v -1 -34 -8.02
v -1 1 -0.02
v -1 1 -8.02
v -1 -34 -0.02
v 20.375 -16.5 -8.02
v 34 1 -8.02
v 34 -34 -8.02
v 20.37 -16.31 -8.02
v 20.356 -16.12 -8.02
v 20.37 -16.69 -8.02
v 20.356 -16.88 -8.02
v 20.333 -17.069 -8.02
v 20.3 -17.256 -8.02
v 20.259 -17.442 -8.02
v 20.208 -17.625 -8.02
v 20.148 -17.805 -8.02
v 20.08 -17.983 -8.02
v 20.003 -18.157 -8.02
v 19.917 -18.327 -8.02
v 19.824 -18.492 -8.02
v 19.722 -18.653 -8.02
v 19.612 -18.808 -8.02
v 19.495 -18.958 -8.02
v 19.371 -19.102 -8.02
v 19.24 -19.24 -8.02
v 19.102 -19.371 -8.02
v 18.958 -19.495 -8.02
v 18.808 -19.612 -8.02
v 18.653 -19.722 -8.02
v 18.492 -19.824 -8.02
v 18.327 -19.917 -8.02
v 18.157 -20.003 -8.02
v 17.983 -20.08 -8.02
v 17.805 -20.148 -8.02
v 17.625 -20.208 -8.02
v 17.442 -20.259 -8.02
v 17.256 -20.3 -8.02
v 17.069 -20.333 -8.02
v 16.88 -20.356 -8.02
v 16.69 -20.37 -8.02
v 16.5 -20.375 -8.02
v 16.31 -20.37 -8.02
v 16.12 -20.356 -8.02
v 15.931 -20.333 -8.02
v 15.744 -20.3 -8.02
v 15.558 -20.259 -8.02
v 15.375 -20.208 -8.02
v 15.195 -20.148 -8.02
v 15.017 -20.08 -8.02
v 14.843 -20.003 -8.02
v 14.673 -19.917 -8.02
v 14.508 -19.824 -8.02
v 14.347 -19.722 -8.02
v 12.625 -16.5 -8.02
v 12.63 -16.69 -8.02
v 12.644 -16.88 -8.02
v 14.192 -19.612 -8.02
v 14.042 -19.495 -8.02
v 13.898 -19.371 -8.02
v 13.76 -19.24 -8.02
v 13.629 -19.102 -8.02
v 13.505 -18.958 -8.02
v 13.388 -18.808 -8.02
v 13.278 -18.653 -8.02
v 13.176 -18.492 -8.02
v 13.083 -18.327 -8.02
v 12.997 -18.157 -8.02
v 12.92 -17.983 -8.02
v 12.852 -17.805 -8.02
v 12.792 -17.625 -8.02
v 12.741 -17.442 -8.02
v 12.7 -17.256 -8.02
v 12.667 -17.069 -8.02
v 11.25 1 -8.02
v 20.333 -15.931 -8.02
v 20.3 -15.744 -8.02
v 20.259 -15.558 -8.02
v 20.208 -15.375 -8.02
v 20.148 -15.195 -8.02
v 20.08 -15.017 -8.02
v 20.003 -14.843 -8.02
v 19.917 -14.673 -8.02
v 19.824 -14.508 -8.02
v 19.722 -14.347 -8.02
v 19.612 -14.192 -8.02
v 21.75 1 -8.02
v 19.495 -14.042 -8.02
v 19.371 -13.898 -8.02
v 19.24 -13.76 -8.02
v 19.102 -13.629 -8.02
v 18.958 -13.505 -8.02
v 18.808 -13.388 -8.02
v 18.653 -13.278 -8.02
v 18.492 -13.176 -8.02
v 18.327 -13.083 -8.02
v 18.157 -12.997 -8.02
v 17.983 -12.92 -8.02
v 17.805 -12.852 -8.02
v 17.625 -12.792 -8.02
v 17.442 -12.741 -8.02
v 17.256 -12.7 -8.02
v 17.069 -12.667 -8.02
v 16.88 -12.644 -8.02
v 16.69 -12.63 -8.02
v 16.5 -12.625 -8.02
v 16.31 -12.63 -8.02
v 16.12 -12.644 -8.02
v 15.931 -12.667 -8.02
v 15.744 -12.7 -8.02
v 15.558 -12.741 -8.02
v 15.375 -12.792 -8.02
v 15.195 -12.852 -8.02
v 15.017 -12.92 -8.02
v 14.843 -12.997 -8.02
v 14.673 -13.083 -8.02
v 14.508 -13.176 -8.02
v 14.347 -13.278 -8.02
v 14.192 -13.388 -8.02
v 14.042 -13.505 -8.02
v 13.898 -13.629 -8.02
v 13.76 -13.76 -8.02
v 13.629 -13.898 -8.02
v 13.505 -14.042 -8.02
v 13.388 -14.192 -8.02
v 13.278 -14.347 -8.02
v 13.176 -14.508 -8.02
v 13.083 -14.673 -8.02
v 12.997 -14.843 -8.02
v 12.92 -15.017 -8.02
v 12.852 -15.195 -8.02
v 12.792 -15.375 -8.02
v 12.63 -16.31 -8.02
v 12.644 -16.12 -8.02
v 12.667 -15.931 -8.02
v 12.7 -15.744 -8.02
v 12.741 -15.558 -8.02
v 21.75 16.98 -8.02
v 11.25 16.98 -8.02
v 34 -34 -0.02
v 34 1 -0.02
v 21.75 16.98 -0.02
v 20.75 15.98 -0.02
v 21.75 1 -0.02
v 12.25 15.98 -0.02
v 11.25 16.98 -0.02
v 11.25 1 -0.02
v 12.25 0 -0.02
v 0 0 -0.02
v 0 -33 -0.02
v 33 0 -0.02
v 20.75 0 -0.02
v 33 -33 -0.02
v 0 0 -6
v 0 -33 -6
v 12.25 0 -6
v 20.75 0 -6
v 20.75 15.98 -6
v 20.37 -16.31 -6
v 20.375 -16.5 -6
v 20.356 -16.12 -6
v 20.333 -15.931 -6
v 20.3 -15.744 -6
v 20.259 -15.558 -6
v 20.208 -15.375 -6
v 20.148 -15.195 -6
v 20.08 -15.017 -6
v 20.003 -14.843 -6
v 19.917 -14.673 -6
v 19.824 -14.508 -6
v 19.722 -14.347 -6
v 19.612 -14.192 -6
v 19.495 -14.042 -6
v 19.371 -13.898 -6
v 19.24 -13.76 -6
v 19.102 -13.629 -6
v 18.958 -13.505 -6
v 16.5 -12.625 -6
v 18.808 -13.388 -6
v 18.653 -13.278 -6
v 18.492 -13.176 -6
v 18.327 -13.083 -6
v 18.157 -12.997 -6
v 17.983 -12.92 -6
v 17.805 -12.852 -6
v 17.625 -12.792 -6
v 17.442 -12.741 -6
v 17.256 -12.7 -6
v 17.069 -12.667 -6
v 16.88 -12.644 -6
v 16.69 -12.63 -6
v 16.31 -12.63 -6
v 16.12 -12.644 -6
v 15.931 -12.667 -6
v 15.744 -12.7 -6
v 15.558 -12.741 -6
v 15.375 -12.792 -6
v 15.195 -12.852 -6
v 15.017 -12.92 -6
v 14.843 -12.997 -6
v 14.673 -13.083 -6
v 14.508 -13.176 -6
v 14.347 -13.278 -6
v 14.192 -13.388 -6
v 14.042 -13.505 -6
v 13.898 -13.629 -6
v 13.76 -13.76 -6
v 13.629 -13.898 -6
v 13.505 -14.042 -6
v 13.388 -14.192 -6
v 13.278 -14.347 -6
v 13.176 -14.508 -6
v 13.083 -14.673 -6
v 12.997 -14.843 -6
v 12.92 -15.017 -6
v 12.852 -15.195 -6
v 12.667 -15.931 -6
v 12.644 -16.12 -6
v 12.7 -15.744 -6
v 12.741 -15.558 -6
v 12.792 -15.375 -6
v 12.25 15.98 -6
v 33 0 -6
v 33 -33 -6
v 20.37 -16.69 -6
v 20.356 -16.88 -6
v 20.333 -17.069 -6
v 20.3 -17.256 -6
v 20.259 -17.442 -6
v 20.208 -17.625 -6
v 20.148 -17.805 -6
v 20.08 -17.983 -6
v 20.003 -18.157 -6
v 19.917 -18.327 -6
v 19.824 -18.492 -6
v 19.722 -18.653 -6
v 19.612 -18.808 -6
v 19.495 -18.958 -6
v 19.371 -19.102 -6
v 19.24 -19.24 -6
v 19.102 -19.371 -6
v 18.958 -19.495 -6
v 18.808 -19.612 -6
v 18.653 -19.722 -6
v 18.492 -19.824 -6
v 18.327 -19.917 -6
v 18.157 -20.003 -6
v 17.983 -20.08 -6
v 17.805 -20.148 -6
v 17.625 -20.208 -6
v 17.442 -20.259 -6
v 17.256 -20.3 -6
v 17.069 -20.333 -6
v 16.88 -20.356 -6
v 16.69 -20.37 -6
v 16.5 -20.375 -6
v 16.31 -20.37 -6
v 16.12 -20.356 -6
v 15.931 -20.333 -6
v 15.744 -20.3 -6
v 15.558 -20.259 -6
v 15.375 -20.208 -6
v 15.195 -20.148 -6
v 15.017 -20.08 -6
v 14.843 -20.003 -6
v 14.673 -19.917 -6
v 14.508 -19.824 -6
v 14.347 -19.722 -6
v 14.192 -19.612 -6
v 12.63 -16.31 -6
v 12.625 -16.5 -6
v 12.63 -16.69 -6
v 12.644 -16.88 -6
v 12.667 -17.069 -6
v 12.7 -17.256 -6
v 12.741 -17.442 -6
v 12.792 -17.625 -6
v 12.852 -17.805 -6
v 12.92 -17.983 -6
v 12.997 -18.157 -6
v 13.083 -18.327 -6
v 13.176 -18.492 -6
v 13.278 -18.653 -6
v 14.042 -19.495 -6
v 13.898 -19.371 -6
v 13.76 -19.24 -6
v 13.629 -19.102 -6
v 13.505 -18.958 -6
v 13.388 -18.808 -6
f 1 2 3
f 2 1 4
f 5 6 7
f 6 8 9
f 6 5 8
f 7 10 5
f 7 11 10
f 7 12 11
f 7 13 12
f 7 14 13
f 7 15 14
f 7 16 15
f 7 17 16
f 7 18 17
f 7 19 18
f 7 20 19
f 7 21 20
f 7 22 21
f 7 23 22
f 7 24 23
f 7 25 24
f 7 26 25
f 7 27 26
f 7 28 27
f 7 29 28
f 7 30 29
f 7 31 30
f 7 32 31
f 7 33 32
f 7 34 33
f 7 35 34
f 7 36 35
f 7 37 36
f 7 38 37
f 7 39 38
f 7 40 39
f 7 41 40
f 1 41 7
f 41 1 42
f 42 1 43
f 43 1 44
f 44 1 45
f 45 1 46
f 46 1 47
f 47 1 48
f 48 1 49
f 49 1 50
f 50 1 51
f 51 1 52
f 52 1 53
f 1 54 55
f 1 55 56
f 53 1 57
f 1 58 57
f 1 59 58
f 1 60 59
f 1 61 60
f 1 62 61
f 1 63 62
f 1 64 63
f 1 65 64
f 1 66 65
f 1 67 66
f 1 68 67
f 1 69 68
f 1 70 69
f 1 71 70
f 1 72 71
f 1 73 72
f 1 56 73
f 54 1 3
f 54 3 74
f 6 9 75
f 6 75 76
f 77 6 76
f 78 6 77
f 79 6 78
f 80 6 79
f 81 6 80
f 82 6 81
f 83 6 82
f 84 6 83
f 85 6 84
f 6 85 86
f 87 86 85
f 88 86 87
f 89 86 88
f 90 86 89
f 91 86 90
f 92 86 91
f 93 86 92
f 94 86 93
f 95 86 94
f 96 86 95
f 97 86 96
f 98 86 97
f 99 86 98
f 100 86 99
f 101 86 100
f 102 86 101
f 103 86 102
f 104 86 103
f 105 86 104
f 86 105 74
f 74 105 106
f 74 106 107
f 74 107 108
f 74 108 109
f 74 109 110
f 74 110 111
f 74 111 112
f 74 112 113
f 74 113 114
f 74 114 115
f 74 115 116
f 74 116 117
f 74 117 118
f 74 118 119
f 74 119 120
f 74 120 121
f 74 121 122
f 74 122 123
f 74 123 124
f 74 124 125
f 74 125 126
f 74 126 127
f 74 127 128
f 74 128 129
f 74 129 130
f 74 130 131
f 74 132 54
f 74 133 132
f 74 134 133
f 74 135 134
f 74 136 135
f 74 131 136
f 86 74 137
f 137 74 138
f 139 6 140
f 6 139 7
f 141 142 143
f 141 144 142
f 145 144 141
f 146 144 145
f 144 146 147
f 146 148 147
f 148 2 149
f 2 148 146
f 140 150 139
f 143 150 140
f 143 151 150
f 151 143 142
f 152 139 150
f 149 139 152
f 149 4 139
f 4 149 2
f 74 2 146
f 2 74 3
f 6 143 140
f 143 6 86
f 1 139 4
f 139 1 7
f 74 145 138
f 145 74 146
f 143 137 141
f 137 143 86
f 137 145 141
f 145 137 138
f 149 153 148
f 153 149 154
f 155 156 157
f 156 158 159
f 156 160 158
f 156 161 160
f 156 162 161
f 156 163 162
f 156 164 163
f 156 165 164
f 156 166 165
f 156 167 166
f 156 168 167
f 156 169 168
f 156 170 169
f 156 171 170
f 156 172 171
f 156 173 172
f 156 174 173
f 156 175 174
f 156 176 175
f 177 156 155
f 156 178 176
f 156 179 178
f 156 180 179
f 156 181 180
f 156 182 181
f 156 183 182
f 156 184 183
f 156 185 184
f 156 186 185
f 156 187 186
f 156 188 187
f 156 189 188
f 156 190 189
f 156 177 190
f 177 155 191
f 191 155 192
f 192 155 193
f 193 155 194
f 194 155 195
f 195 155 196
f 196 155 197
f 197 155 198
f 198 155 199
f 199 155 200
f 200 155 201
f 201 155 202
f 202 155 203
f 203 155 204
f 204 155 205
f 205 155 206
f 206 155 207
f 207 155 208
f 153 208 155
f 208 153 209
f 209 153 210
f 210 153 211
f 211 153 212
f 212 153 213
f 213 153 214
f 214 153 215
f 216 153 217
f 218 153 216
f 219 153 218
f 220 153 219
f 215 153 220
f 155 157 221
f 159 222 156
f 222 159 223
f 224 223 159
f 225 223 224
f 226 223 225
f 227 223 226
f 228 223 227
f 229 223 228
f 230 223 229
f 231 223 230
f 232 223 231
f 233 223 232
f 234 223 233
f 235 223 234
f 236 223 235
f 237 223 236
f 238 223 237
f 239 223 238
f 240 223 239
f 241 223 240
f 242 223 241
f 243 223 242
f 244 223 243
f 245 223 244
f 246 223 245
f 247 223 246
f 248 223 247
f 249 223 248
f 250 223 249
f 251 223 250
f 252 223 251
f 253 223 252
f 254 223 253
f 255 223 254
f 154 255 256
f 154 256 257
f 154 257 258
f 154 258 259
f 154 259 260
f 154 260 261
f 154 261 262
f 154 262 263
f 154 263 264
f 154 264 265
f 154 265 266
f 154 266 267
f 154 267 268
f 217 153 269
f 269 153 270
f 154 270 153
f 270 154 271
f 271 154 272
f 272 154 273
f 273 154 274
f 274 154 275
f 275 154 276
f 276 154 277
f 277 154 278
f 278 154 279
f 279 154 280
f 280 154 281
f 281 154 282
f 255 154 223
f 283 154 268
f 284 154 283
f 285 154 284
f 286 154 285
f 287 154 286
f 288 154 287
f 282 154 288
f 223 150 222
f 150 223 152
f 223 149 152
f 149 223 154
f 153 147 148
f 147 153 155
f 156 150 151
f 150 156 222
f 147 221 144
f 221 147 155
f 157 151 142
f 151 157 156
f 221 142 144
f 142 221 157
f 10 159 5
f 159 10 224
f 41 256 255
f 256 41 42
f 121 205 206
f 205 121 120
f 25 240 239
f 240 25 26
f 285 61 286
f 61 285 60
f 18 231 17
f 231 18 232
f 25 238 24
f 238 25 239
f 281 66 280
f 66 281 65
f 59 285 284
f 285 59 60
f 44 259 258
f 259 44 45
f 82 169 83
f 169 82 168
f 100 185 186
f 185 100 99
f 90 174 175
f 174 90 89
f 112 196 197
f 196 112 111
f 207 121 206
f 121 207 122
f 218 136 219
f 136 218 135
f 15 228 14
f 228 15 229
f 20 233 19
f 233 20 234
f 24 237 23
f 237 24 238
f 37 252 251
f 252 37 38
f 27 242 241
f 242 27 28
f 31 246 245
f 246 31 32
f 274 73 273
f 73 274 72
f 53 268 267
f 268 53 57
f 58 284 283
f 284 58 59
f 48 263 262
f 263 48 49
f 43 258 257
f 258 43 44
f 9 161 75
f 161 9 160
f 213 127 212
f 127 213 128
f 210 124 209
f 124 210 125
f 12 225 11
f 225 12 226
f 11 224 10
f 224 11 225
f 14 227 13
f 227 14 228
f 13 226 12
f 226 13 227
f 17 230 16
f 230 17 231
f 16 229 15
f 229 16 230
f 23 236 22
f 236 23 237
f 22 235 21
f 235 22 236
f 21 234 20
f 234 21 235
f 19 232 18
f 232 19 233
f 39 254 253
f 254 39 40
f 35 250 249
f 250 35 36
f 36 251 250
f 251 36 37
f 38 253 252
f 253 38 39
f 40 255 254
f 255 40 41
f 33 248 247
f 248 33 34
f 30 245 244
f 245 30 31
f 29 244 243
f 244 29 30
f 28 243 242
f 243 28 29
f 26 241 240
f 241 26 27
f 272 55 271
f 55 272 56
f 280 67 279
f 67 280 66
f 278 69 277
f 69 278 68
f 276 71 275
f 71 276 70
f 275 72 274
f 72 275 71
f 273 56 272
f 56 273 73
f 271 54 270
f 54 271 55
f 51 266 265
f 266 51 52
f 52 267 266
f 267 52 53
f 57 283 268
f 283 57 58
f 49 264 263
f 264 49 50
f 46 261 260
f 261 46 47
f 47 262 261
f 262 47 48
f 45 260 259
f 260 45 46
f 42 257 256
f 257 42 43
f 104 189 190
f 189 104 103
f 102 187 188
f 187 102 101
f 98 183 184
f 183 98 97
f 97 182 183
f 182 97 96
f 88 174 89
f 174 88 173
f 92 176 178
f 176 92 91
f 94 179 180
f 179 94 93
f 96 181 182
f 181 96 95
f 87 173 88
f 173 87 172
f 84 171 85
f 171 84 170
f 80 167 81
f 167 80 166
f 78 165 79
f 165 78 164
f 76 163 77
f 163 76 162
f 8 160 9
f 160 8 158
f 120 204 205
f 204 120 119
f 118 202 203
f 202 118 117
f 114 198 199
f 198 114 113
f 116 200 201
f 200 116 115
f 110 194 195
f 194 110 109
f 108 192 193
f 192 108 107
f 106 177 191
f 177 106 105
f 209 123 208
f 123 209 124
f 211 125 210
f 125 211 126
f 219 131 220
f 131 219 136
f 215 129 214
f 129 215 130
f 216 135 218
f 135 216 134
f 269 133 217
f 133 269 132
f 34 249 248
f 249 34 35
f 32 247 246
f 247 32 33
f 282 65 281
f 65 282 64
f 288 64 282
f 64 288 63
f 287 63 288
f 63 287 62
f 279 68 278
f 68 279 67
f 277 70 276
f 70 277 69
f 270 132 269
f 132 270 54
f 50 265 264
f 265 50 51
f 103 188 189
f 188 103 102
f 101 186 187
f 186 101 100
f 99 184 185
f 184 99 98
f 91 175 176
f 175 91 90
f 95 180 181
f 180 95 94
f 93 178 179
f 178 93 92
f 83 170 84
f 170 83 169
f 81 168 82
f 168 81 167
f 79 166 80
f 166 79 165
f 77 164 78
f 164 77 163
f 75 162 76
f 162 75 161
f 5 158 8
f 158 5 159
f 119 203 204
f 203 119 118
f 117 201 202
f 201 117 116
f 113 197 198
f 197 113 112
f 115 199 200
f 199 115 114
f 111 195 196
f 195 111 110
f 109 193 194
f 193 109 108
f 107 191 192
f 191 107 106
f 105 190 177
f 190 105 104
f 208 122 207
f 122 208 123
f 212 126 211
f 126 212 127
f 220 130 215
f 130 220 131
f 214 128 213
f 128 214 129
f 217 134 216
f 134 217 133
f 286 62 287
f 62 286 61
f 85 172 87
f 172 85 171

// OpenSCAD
// file: layouts/l6-playa.scad
POSITIONS = [
  [[121.59, 347.196, 80],  [25.2851, 46.366, 65.558]],
  [[95.181, 89.99, 329.994],   [69.35841, 89.4529, 85.5301]],
  [[250.596, 117.019, 42.5107], [94.7403, 57.5094, 51.0992]]
];
INSERT_HEIGHT = 20;
INSERT_MARGIN = 7;
CAVITY_SCALE = 0.70;
CUBE_SIZE = 110;
FLOOR_SIZE = 55;
// file: constants.scad
include <layouts/l6-playa.scad>

INCH = 25.4;
CEIL_CLEARANCE = 600;
NUM_PHONES = 3;
DRAW_RANDOM = false;


PANE_WIDTH = 10 * INCH;
PANE_HEIGHT = 8 * INCH;
PANE_THICKNESS = 2;

FRAME_PADDING = INCH / 4;

FRAME_WIDTH = PANE_WIDTH + 2 * FRAME_PADDING;
FRAME_HEIGHT = PANE_HEIGHT + 2 * FRAME_PADDING;
FRAME_THICKNESS = INCH / 4;


PHONE_HEIGHT = 147.8;
PHONE_WIDTH = 71.9;
PHONE_DEPTH = 9.1;
PHONE_SCREEN_TOP = 19; //wrt case top
PHONE_SCREEN_HEIGHT = 110;
PHONE_SCREEN_WIDTH = 68;
PHONE_LENS_DIA = 11.85;
PHONE_LENS_OFFSET_LEFT = 3;
PHONE_LENS_OFFSET_TOP = 3.65;
PHONE_LENS_FIELD_OF_VIEW = 81;
PHONE_POWER_BUTTON_TOP = 52;

CASE_THICKNESS = 1.5;
WALL_THICKNESS = 3;
CASE_HEIGHT = PHONE_HEIGHT + 2 * WALL_THICKNESS;
CASE_WIDTH = PHONE_WIDTH + 2 * WALL_THICKNESS;
CASE_DEPTH = PHONE_DEPTH + 2 * CASE_THICKNESS;

// new iteration using baby USB cams
BOARD_WIDTH = 33;
BOARD_HEIGHT = 33;
BOARD_DEPTH = 6;
BOARD_LENS_DIA = 7.75;

BOARD_HOLDER_MARGIN = 2; //temp to address poor fit. ===2

USB_MICROB_WIDTH = 8.5;
USB_MICROB_LENGTH = 16;
USB_CHANNEL_WIDTH = 8.5;
USB_CHANNEL_LENGTH = 20;
USB_CHANNEL_DEPTH = 14;

RASPI_WIDTH = 50; // includes approximate USB clearance
RASPI_LENGTH = 70;
RASPI_HEIGHT = 30;


CASE_ANCHOR_OFFSET = 14;
CASE_ANCHOR_POINTS = [
  [0, 0, 0],
  [0, BOARD_HEIGHT, 0],
  [BOARD_WIDTH, BOARD_HEIGHT, 0],
  [BOARD_WIDTH, 0, 0]
];

PANE_ANCHOR_OFFSET = 0;
PANE_ANCHOR_POINTS = [
  [0, PANE_ANCHOR_OFFSET, 0],
  [0, PANE_HEIGHT - PANE_ANCHOR_OFFSET, 0],
  [PANE_WIDTH, PANE_HEIGHT - PANE_ANCHOR_OFFSET, 0],
  [PANE_WIDTH, PANE_ANCHOR_OFFSET, 0]
];

HOLDER_WIDTH = 100;
HOLDER_HEIGHT = 20;
HOLDER_DEPTH = 30;
HOLDER_FOOT = 10;


d = 0.01;
d2 = 2 * d;
wiggle = 1;
// main file
include <constants.scad>
$fn = 128;

module holder(margin = BOARD_HOLDER_MARGIN, depth = BOARD_DEPTH) {
  w = BOARD_WIDTH + margin;
  h = BOARD_HEIGHT + margin;
  d = depth + margin;
  translate([-margin/2, -margin/2, d2 - depth])
    union() {
      cube([w, h, d]);
    translate([BOARD_WIDTH/2 - USB_MICROB_WIDTH/2, -USB_MICROB_LENGTH + d2, 0])
      cube([USB_MICROB_WIDTH + margin, USB_MICROB_LENGTH + margin, depth + margin]);
  }
}

module slot(id = -1, cutout_depth = 70) {
  translate([0, 0, -cutout_depth])
  union() {
    cube([BOARD_WIDTH, BOARD_HEIGHT, BOARD_DEPTH + cutout_depth]);
    //room for usb connection
    translate([BOARD_WIDTH/2 - USB_MICROB_WIDTH/2, -USB_MICROB_LENGTH + d2, 0])
      cube([USB_MICROB_WIDTH, USB_MICROB_LENGTH, BOARD_DEPTH + cutout_depth]);
    translate([BOARD_WIDTH/2, BOARD_HEIGHT/2, cutout_depth])
      cylinder(d=BOARD_LENS_DIA, h=cutout_depth);
  }
}

rotate([180, 0, 0])
difference() {
  translate([0, 0, BOARD_DEPTH])
    holder();
  slot();
}
